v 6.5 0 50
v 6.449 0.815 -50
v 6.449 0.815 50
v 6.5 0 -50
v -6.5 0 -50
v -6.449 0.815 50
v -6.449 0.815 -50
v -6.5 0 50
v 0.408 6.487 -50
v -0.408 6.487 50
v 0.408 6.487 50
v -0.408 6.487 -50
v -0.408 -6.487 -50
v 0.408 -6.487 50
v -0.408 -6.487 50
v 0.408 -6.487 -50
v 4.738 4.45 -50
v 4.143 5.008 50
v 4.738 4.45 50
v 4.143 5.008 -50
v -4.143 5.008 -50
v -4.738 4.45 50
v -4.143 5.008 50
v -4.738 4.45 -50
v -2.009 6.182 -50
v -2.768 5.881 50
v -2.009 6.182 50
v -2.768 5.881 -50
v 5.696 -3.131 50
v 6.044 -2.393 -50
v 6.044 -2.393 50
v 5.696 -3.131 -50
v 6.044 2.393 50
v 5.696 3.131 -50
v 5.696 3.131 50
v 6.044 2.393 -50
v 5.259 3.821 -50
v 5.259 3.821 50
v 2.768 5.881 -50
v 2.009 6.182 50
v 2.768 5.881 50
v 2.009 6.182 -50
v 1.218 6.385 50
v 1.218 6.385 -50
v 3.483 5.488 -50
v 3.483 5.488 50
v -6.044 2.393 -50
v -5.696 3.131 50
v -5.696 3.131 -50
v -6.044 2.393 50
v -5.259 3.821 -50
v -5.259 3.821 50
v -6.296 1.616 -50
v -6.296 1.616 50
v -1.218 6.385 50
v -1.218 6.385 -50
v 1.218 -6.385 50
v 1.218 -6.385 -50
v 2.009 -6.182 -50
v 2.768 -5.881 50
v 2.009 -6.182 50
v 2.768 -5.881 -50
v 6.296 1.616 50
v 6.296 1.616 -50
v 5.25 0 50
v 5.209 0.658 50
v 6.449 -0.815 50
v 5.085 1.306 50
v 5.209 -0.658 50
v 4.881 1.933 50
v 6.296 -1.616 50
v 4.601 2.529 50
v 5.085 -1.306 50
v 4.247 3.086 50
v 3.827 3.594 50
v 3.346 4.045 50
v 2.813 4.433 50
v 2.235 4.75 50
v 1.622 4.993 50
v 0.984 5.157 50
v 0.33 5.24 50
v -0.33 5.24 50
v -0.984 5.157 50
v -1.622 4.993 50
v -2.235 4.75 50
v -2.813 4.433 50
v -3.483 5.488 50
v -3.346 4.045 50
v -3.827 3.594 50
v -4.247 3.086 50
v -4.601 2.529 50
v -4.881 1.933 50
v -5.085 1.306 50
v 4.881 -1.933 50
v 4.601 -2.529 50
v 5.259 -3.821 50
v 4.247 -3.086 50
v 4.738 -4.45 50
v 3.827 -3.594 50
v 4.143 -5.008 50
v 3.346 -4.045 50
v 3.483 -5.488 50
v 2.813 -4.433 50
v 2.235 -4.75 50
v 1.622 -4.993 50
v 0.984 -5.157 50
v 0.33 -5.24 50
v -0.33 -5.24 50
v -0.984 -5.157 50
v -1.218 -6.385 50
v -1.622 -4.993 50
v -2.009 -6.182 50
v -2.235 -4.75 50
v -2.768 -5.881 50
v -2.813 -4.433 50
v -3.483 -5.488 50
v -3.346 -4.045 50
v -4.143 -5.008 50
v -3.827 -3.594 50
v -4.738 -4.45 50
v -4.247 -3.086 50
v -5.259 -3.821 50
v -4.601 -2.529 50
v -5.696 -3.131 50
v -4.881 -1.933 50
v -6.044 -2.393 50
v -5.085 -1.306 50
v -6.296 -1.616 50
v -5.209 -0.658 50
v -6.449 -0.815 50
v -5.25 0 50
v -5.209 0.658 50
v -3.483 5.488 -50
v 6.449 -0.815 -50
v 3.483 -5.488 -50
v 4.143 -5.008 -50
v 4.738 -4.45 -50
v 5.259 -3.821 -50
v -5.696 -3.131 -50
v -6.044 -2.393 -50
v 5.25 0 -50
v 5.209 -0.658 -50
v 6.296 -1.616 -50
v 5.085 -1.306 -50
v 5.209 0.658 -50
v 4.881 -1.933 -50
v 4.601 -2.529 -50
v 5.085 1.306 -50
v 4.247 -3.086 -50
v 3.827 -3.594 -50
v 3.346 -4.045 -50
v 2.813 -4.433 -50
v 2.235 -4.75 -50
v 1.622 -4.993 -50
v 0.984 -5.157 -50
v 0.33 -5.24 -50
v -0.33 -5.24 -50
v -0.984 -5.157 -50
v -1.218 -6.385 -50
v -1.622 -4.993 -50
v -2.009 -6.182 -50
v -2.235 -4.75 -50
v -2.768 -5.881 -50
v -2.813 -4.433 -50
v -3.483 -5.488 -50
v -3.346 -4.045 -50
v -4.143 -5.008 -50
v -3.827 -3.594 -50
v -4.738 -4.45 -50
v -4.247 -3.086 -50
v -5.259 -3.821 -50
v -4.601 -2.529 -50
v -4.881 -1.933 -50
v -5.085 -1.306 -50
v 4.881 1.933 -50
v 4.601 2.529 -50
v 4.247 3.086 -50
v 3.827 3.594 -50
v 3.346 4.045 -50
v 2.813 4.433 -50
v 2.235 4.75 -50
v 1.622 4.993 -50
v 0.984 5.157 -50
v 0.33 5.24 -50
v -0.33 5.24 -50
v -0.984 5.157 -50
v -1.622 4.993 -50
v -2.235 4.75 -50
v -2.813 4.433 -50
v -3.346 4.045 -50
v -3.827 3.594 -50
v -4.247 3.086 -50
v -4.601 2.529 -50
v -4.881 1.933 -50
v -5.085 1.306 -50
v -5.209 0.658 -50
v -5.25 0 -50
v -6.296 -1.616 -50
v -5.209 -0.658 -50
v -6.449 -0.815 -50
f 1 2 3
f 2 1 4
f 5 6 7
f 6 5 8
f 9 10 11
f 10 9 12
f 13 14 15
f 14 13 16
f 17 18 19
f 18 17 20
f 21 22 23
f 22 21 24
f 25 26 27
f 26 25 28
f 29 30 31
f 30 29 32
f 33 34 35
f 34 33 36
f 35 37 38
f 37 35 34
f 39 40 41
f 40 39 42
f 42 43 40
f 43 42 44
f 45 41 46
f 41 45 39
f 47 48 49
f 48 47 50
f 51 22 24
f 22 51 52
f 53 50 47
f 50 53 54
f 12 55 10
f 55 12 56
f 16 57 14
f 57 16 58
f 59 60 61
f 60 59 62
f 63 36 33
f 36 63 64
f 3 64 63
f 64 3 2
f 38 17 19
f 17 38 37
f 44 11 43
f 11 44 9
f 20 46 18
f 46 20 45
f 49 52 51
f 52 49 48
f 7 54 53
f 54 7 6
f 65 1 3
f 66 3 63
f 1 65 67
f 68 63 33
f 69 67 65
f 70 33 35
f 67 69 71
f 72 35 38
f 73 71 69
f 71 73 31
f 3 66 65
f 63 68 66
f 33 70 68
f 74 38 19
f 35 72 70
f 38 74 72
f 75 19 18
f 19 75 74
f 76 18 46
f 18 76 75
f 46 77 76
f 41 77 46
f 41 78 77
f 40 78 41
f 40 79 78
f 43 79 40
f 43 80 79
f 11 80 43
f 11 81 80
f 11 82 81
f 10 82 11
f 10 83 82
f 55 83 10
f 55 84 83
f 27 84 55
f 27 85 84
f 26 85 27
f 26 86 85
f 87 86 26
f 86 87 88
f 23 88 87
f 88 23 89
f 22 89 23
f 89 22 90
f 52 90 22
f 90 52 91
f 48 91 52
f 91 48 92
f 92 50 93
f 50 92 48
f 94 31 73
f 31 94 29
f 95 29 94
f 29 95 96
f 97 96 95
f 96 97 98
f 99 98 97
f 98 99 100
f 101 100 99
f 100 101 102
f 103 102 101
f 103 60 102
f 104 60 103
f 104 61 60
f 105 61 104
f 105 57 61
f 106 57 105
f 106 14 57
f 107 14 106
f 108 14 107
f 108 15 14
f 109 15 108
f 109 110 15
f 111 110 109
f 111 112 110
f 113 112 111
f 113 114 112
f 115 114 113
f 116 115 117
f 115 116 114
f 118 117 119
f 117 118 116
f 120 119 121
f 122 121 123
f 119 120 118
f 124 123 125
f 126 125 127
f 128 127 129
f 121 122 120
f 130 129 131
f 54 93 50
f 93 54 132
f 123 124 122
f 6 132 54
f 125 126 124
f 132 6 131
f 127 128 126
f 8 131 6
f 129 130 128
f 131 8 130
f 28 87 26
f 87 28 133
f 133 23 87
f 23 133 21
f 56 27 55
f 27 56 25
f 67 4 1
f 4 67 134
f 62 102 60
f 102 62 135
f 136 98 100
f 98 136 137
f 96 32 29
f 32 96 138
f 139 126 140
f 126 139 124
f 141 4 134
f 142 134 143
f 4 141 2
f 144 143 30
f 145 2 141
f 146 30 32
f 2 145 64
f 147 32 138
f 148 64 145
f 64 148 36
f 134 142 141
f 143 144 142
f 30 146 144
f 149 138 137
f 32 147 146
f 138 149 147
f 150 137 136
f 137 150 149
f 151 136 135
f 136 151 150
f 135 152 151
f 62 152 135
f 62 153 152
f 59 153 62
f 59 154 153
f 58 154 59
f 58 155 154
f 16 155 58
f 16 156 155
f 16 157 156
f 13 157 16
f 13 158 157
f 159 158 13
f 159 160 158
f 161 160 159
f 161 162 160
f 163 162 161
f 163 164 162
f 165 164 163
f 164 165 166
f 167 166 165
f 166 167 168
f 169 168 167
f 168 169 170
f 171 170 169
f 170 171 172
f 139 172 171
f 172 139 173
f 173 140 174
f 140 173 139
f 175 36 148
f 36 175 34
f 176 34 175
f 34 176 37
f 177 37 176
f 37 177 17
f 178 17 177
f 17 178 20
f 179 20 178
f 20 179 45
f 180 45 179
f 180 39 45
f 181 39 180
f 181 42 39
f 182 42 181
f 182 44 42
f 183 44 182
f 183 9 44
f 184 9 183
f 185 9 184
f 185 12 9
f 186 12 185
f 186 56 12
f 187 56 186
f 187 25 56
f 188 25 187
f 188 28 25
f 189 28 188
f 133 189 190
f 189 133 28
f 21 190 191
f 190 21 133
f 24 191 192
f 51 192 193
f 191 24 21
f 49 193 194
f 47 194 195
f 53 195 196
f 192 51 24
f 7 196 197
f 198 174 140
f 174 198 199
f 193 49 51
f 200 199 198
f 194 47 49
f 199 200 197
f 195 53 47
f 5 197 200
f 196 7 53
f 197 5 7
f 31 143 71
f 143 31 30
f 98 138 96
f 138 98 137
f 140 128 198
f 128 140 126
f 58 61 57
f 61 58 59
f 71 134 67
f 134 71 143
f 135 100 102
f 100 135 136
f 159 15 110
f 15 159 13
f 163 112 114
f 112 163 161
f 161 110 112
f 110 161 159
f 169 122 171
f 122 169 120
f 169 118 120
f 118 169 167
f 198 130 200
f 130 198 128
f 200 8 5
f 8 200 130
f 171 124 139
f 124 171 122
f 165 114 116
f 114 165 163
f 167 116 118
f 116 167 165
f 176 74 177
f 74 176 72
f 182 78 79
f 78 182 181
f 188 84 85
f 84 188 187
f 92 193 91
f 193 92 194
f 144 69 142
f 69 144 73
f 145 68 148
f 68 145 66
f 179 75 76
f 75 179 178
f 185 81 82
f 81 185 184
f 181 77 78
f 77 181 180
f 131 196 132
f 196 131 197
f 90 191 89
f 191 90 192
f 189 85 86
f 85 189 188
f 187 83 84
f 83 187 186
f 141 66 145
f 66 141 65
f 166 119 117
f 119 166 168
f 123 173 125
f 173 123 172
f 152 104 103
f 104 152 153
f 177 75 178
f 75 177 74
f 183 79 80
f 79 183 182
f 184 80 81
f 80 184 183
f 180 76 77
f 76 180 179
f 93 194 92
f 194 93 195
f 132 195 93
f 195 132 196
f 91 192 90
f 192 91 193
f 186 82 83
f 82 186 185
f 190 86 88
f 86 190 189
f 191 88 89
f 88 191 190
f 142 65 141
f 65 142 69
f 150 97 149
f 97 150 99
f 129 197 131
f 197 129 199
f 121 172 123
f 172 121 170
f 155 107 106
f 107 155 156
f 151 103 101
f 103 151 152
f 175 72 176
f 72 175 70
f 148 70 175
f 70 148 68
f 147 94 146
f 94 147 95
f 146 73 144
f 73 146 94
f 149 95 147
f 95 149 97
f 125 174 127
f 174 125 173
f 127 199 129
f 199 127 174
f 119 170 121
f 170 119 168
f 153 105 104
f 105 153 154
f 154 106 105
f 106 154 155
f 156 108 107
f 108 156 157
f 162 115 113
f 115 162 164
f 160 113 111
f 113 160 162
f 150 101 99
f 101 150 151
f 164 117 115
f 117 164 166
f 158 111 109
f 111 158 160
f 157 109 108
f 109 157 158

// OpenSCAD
$fn = 50;


difference() {
	union() {
		translate(v = [0, 0, -50.0000000000]) {
			cylinder(h = 100, r = 6.5000000000);
		}
	}
	union() {
		translate(v = [0, 0, -100.0000000000]) {
			cylinder(h = 200, r = 5.2500000000);
		}
	}
}
